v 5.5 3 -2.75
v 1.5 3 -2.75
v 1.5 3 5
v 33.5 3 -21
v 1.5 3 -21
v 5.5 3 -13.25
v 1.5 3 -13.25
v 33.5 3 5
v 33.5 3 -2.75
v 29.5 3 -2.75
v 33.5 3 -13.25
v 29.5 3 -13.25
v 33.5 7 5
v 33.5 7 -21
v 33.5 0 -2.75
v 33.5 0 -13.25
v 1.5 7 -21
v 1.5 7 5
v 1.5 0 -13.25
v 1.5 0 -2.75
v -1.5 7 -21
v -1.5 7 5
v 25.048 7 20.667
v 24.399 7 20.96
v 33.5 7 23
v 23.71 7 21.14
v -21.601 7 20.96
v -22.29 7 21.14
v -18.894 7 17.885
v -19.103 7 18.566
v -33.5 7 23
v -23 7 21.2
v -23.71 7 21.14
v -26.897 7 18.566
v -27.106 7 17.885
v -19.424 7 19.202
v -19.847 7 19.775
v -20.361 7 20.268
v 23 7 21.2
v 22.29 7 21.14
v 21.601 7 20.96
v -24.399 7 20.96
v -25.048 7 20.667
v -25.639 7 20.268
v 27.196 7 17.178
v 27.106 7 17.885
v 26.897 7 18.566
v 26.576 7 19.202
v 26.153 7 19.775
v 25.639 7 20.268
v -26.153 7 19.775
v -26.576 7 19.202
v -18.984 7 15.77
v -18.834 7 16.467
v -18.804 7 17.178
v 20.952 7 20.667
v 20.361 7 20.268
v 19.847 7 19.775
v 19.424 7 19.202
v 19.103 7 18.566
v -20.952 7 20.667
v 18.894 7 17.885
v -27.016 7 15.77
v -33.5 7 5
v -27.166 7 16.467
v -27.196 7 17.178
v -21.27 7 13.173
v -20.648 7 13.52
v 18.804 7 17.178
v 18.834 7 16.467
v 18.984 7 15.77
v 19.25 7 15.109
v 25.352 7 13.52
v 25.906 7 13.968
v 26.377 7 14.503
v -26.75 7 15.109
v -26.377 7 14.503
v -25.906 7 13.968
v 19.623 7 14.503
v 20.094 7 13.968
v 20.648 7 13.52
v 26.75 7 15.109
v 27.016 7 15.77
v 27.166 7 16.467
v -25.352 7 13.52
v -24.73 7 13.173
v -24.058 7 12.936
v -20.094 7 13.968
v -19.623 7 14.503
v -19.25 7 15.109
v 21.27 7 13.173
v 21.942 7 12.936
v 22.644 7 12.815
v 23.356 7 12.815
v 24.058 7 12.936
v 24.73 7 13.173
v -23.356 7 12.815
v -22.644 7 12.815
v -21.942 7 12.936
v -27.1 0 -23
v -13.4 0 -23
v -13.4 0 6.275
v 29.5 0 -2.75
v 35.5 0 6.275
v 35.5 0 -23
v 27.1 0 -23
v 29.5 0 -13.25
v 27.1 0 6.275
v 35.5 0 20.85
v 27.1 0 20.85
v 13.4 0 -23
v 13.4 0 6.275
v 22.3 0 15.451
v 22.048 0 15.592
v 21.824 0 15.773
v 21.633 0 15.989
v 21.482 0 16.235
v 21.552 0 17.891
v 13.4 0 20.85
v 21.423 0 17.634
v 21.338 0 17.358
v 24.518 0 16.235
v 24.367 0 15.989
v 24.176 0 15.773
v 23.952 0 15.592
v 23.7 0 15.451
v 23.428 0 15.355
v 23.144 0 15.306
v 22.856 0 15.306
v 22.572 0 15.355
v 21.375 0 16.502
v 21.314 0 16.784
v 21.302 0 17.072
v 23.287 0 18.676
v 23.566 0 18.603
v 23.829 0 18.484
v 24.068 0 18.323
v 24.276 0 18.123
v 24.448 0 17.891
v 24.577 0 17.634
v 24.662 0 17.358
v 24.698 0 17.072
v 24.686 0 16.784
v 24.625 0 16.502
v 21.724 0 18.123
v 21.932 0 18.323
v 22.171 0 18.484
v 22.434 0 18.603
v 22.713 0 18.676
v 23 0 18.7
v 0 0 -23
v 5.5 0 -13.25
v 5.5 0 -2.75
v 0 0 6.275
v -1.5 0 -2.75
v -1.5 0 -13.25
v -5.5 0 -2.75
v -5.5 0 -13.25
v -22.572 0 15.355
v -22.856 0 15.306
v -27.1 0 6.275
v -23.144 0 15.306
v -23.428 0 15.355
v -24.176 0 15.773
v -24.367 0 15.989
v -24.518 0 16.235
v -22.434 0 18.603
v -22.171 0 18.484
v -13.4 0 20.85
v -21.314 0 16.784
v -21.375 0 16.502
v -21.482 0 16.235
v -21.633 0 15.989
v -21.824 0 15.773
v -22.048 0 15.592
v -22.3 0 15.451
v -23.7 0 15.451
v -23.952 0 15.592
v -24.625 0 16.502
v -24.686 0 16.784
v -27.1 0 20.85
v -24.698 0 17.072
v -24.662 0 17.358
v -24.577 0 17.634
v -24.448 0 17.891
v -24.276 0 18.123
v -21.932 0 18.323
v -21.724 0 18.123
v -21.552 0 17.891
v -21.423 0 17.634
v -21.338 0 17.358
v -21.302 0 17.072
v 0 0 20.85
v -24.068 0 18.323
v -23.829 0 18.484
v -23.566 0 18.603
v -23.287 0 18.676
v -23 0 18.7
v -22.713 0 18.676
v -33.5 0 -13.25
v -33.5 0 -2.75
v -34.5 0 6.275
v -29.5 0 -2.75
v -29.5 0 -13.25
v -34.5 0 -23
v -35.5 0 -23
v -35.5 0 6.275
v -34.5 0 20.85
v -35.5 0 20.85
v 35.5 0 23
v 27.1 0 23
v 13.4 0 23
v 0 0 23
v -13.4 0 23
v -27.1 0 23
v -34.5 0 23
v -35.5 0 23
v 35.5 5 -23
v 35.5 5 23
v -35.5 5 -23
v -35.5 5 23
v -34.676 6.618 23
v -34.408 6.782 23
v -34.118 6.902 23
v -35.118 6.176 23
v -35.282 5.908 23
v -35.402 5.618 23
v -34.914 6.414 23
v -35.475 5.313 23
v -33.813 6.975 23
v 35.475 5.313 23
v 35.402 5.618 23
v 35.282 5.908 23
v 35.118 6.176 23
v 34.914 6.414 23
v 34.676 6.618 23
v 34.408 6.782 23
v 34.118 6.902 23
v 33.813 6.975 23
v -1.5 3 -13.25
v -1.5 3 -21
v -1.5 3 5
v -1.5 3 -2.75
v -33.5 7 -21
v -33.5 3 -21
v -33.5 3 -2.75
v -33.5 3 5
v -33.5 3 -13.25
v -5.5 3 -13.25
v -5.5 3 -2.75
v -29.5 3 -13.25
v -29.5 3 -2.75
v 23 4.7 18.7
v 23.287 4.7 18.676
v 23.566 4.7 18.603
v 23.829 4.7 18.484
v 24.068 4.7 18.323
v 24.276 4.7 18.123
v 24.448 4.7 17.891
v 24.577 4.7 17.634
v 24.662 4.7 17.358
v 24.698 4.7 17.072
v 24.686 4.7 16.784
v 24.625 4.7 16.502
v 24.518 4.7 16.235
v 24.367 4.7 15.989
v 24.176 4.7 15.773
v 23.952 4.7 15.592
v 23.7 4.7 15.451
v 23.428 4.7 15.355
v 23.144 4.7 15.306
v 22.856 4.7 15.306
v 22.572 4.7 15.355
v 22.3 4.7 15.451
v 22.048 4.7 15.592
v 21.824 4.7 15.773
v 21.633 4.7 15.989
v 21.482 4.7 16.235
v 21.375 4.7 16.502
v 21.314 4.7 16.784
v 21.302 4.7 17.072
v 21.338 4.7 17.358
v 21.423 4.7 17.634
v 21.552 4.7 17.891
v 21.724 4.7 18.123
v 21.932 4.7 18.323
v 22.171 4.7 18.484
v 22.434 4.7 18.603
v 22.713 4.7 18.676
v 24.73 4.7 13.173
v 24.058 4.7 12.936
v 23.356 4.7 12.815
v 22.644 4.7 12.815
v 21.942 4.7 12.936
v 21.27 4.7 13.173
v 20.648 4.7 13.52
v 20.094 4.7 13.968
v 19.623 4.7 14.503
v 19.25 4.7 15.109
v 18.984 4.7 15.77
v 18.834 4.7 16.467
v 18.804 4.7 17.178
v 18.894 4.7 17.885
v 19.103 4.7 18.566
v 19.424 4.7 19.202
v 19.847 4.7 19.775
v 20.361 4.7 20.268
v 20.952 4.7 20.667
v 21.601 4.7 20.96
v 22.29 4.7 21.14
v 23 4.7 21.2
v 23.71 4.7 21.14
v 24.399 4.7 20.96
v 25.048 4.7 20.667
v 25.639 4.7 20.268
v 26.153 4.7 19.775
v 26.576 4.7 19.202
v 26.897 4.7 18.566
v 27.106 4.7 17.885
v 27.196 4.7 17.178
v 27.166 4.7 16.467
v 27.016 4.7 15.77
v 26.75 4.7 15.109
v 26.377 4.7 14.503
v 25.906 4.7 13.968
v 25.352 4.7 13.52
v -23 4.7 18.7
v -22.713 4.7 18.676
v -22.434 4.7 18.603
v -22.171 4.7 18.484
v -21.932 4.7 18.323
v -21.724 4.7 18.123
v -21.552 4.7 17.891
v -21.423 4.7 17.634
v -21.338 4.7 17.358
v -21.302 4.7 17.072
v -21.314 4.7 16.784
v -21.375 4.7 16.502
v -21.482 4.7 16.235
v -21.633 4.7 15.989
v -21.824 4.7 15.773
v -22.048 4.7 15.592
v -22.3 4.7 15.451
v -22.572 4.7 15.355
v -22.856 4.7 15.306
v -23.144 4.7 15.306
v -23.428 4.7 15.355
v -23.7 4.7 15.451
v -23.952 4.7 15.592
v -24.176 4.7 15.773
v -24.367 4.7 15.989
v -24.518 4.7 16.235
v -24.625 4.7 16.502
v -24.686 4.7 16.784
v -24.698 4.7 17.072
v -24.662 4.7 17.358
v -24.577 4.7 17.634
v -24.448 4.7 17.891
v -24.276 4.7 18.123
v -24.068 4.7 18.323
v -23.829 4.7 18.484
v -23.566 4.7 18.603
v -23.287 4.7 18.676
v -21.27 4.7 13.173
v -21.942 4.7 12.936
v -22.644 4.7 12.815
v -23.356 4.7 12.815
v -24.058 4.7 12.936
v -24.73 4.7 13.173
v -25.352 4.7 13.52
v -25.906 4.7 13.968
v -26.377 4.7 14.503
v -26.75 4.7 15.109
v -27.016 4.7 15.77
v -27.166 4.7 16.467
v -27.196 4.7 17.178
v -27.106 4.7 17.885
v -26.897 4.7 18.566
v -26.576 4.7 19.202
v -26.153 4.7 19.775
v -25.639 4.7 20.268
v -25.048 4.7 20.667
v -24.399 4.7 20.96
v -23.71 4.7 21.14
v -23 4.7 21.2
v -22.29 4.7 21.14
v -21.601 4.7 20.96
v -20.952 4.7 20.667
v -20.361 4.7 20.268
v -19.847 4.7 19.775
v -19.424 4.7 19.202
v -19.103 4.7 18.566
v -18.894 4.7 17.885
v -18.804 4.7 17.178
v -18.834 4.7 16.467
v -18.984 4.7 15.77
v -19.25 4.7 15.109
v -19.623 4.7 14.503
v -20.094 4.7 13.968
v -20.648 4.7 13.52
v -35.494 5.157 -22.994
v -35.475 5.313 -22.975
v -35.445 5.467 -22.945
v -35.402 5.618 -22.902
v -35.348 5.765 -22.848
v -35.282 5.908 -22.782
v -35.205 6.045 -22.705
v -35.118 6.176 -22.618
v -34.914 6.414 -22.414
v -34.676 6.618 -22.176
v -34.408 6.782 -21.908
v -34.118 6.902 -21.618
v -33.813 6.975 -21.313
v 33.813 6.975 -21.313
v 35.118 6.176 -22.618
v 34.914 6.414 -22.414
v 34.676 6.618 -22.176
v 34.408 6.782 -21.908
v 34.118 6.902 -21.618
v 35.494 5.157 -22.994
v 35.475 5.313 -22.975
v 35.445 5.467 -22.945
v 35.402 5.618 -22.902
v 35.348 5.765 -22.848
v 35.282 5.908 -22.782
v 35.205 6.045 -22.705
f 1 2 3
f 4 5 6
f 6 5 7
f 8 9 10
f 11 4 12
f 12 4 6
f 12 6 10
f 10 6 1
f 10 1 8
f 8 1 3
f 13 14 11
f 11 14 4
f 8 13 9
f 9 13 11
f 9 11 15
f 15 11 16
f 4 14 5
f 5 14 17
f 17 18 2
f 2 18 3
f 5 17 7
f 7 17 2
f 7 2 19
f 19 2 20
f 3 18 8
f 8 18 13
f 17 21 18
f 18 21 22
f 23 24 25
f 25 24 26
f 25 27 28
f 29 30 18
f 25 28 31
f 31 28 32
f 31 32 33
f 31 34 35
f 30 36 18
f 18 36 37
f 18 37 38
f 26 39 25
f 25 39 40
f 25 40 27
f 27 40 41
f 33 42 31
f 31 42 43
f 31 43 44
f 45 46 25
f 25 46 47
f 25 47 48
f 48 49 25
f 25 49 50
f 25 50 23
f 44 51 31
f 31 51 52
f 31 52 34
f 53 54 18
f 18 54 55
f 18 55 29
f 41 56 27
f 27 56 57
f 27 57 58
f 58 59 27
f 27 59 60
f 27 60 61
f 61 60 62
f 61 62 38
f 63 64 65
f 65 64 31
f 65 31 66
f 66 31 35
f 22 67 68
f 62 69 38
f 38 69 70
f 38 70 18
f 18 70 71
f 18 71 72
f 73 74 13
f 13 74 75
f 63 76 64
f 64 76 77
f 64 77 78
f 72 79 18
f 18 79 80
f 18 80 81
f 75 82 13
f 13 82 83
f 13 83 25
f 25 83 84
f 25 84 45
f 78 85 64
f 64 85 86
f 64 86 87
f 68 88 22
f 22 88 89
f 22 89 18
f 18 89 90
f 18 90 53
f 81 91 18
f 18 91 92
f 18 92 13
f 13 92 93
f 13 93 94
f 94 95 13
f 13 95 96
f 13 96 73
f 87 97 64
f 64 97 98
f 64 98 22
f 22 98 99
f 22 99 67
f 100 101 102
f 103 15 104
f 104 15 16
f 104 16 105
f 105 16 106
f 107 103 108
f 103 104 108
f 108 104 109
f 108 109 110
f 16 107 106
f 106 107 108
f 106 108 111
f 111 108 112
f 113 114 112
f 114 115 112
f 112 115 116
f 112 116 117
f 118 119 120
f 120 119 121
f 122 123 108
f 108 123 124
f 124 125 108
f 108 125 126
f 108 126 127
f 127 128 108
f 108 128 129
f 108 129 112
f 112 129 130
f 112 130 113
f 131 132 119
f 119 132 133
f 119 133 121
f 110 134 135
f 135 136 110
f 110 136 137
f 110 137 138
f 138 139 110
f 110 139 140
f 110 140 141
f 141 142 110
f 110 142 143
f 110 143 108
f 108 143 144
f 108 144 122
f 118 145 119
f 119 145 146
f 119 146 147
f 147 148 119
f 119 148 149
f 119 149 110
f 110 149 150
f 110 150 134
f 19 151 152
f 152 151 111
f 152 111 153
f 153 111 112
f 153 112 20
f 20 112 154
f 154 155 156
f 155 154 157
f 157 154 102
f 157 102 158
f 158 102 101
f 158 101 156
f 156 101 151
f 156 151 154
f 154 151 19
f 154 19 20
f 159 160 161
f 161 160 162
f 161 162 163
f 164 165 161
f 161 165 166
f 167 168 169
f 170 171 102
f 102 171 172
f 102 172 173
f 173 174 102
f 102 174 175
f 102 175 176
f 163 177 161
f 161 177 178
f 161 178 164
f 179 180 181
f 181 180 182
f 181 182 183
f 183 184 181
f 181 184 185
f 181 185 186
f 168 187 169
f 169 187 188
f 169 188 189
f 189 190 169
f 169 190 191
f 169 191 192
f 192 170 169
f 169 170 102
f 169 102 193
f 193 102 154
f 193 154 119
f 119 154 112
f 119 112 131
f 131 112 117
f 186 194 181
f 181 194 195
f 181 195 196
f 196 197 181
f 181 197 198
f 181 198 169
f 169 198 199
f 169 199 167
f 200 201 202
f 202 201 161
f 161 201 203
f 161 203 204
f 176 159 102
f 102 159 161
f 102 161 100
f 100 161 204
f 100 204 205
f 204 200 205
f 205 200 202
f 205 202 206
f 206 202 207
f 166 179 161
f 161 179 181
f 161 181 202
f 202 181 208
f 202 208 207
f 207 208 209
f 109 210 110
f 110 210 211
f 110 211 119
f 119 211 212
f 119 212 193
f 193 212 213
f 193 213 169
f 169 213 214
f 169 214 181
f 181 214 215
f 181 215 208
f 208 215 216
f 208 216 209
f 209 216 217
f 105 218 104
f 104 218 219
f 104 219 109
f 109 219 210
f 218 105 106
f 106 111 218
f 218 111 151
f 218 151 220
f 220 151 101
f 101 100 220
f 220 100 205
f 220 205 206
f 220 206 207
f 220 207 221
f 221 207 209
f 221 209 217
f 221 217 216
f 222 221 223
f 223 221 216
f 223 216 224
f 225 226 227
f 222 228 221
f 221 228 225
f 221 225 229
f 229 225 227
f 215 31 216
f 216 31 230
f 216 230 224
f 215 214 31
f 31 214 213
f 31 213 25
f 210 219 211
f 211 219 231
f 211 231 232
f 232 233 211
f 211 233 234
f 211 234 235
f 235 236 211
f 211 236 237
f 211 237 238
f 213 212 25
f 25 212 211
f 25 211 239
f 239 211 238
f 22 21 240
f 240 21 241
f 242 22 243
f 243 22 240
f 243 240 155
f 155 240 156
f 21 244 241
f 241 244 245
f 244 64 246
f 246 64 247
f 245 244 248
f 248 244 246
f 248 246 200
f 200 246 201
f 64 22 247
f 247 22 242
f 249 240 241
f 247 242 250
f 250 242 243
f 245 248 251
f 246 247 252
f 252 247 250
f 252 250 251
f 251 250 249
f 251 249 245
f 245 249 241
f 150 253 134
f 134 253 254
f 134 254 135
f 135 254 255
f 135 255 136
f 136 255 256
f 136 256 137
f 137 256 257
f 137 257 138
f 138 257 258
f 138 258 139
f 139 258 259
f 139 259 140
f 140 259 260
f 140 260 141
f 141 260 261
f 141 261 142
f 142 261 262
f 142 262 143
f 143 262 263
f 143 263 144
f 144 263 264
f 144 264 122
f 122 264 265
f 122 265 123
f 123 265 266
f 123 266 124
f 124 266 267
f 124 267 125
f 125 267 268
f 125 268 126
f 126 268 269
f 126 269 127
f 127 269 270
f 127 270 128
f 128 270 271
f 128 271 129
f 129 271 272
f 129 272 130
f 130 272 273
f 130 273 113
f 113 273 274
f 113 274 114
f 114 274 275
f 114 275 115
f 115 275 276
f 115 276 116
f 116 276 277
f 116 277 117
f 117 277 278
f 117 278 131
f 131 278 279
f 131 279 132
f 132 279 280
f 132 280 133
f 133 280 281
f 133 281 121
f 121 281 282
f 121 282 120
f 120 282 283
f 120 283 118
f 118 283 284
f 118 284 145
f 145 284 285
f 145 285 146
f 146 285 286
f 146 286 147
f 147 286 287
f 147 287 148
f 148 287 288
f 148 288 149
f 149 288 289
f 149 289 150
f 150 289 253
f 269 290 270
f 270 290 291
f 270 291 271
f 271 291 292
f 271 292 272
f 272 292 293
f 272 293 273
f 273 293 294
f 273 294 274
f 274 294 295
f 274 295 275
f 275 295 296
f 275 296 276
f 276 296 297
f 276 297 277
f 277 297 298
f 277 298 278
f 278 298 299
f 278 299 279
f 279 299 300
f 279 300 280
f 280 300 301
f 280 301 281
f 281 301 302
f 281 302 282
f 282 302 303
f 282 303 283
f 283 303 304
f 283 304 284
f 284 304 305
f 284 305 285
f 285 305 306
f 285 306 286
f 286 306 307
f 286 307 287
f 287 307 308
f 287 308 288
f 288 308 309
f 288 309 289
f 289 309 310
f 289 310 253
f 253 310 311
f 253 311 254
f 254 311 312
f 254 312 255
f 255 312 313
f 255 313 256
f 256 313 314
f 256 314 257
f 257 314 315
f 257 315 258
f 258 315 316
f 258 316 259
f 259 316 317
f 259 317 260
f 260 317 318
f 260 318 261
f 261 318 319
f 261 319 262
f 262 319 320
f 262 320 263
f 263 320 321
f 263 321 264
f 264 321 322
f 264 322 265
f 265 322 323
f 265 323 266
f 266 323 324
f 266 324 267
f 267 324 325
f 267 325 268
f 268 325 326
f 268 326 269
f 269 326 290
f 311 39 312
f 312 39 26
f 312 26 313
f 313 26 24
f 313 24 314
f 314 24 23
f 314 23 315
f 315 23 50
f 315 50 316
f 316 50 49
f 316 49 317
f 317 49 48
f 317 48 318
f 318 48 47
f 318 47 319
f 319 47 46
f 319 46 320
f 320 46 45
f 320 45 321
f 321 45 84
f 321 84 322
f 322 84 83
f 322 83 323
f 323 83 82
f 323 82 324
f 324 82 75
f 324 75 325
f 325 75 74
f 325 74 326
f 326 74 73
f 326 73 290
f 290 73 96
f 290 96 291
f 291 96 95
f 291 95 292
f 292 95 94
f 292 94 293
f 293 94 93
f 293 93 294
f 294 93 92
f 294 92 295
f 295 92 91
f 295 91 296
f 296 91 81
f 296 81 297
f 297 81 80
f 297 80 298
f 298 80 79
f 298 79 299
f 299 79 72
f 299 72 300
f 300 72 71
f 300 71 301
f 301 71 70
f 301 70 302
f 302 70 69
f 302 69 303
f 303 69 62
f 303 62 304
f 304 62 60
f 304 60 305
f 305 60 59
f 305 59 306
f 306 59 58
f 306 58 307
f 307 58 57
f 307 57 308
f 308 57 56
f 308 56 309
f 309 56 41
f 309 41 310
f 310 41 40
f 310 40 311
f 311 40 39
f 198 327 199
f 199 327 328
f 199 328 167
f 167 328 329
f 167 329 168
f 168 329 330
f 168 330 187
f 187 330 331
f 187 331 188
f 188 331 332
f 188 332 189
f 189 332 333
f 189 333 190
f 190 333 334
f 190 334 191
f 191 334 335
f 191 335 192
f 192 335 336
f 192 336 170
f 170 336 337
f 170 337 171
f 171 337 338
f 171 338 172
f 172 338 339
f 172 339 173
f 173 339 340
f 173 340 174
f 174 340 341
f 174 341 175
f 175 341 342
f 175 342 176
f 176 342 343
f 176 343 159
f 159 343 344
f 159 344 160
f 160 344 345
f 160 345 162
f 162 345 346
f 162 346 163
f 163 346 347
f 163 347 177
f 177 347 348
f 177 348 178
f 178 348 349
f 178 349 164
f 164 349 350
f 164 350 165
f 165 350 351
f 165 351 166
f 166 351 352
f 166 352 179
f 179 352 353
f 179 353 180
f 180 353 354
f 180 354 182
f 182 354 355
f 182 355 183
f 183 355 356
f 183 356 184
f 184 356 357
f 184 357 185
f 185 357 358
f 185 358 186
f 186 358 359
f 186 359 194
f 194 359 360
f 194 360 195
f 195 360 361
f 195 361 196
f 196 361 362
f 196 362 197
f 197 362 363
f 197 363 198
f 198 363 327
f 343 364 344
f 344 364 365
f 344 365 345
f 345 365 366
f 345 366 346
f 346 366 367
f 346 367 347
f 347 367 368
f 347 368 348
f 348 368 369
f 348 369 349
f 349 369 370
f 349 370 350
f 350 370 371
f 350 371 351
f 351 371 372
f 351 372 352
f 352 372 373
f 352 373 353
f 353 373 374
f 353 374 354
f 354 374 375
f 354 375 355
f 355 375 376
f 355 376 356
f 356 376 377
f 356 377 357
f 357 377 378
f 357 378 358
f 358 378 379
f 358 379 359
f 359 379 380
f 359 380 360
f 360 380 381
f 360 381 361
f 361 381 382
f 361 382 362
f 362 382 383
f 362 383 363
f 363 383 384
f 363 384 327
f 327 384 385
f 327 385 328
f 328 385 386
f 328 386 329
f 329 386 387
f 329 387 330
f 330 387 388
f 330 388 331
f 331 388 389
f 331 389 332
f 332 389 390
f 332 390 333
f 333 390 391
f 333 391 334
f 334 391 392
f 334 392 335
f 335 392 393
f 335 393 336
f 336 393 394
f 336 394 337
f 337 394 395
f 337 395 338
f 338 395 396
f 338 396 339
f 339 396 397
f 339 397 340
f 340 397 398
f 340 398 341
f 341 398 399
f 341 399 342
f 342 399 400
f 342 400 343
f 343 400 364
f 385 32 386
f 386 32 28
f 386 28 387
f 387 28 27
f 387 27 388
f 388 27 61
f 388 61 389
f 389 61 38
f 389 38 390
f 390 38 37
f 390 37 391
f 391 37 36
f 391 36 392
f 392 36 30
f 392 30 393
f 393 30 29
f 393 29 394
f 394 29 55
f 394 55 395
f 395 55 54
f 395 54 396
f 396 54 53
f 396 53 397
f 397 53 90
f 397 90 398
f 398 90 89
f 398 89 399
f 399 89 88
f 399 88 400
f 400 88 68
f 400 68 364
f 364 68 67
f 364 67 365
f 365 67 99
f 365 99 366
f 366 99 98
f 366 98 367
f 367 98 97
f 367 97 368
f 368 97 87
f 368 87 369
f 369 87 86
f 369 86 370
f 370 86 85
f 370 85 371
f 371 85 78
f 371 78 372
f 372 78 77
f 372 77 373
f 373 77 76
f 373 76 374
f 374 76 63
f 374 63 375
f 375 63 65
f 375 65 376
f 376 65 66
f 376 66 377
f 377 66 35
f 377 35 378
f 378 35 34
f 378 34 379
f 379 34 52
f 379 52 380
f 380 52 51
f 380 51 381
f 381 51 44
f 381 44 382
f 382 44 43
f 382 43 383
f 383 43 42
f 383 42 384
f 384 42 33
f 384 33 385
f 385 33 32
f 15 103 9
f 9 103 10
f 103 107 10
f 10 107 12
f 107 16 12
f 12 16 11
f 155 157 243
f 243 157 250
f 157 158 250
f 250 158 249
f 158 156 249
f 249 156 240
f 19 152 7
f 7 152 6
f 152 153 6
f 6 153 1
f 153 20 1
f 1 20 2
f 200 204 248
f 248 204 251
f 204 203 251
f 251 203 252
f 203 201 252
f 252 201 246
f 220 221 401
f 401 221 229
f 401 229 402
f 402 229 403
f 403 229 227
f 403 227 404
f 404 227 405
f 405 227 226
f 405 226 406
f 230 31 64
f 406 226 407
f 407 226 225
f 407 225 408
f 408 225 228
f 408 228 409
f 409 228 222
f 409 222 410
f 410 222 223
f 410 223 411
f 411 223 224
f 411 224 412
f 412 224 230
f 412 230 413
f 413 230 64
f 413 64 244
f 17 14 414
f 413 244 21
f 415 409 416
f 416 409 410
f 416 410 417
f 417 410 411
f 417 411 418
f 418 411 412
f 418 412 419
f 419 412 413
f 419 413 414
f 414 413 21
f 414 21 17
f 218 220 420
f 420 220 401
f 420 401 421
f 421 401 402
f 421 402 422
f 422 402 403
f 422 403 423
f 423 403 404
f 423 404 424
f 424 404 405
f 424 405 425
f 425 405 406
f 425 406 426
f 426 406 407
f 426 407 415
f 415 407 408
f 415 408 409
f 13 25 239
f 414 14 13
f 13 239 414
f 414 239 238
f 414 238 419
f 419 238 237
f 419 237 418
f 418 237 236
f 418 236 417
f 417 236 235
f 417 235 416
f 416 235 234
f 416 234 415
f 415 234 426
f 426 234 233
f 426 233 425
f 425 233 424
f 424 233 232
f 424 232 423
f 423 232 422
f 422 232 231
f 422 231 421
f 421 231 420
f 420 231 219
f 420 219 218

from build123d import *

# Parameters (mm, degrees)
SKETCH1_W                                        = 71
SKETCH1_H                                        = 46
SKETCH1_W_2                                      = 32
SKETCH1_H_2                                      = 26
BOSS_EXTRUDE1_DEPTH                              = 7
SKETCH1_2_W                                      = 32
SKETCH1_2_H                                      = 26
BOSS_EXTRUDE2_DEPTH                              = 3
CBORE_FOR_M3_HEX_HEAD_MACHINE_SCREW1_D           = 3.4
CBORE_FOR_M3_HEX_HEAD_MACHINE_SCREW1_CBORE_D     = 8.4
CBORE_FOR_M3_HEX_HEAD_MACHINE_SCREW1_CBORE_DEPTH = 2.3
SKETCH6_W                                        = 4
SKETCH6_H                                        = 10.5
CUT_EXTRUDE1_DEPTH                               = 43.488233665
FILLET1_R                                        = 2


with BuildPart() as part:
    # Sketch1 → Boss-Extrude1 (new body)
    with BuildSketch(Plane(origin=(0, 0, 0), x_dir=(1, 0, 0), z_dir=(0, 1, 0))):
        Rectangle(SKETCH1_W, SKETCH1_H)
        with Locations((-17.5, 8)):
            Rectangle(SKETCH1_W_2, SKETCH1_H_2, mode=Mode.SUBTRACT)
        with Locations((17.5, 8)):
            Rectangle(SKETCH1_W_2, SKETCH1_H_2, mode=Mode.SUBTRACT)
    extrude(amount=BOSS_EXTRUDE1_DEPTH)

    # Sketch1<2> → Boss-Extrude2 (add)
    with BuildSketch(Plane(origin=(0, 0, 0), x_dir=(1, 0, 0), z_dir=(0, 1, 0))):
        with Locations((-17.5, 8)):
            Rectangle(SKETCH1_2_W, SKETCH1_2_H)
        with Locations((17.5, 8)):
            Rectangle(SKETCH1_2_W, SKETCH1_2_H)
    extrude(amount=BOSS_EXTRUDE2_DEPTH)

    # CBORE for M3 Hex Head Machine Screw1 (through all)
    with Locations(Plane(origin=(0, 7, 0), x_dir=(1, 0, 0), z_dir=(0, 1, 0))):
        with Locations((-23, -17), (23, -17)):
            CounterBoreHole(CBORE_FOR_M3_HEX_HEAD_MACHINE_SCREW1_D / 2, CBORE_FOR_M3_HEX_HEAD_MACHINE_SCREW1_CBORE_D / 2, CBORE_FOR_M3_HEX_HEAD_MACHINE_SCREW1_CBORE_DEPTH)

    # Sketch6 → Cut-Extrude1 (cut, through all)
    with BuildSketch(Plane(origin=(0, 3, 0), x_dir=(1, 0, 0), z_dir=(0, 1, 0))):
        with Locations((-31.5, 8)):
            Rectangle(SKETCH6_W, SKETCH6_H)
        with Locations((-3.5, 8)):
            Rectangle(SKETCH6_W, SKETCH6_H)
        with Locations((3.5, 8)):
            Rectangle(SKETCH6_W, SKETCH6_H)
        with Locations((31.5, 8)):
            Rectangle(SKETCH6_W, SKETCH6_H)
    extrude(amount=-CUT_EXTRUDE1_DEPTH, mode=Mode.SUBTRACT)

    # Fillet1
    fillet1_edges = [part.edges().sort_by_distance(p)[0] for p in [
        (-35.5, 7, 0),
        (35.5, 7, 0),
        (0, 7, -23),
    ]]
    fillet(fillet1_edges, radius=FILLET1_R - 0.0001)  # a hair under: the kernel refuses the full size


solid = part.part
